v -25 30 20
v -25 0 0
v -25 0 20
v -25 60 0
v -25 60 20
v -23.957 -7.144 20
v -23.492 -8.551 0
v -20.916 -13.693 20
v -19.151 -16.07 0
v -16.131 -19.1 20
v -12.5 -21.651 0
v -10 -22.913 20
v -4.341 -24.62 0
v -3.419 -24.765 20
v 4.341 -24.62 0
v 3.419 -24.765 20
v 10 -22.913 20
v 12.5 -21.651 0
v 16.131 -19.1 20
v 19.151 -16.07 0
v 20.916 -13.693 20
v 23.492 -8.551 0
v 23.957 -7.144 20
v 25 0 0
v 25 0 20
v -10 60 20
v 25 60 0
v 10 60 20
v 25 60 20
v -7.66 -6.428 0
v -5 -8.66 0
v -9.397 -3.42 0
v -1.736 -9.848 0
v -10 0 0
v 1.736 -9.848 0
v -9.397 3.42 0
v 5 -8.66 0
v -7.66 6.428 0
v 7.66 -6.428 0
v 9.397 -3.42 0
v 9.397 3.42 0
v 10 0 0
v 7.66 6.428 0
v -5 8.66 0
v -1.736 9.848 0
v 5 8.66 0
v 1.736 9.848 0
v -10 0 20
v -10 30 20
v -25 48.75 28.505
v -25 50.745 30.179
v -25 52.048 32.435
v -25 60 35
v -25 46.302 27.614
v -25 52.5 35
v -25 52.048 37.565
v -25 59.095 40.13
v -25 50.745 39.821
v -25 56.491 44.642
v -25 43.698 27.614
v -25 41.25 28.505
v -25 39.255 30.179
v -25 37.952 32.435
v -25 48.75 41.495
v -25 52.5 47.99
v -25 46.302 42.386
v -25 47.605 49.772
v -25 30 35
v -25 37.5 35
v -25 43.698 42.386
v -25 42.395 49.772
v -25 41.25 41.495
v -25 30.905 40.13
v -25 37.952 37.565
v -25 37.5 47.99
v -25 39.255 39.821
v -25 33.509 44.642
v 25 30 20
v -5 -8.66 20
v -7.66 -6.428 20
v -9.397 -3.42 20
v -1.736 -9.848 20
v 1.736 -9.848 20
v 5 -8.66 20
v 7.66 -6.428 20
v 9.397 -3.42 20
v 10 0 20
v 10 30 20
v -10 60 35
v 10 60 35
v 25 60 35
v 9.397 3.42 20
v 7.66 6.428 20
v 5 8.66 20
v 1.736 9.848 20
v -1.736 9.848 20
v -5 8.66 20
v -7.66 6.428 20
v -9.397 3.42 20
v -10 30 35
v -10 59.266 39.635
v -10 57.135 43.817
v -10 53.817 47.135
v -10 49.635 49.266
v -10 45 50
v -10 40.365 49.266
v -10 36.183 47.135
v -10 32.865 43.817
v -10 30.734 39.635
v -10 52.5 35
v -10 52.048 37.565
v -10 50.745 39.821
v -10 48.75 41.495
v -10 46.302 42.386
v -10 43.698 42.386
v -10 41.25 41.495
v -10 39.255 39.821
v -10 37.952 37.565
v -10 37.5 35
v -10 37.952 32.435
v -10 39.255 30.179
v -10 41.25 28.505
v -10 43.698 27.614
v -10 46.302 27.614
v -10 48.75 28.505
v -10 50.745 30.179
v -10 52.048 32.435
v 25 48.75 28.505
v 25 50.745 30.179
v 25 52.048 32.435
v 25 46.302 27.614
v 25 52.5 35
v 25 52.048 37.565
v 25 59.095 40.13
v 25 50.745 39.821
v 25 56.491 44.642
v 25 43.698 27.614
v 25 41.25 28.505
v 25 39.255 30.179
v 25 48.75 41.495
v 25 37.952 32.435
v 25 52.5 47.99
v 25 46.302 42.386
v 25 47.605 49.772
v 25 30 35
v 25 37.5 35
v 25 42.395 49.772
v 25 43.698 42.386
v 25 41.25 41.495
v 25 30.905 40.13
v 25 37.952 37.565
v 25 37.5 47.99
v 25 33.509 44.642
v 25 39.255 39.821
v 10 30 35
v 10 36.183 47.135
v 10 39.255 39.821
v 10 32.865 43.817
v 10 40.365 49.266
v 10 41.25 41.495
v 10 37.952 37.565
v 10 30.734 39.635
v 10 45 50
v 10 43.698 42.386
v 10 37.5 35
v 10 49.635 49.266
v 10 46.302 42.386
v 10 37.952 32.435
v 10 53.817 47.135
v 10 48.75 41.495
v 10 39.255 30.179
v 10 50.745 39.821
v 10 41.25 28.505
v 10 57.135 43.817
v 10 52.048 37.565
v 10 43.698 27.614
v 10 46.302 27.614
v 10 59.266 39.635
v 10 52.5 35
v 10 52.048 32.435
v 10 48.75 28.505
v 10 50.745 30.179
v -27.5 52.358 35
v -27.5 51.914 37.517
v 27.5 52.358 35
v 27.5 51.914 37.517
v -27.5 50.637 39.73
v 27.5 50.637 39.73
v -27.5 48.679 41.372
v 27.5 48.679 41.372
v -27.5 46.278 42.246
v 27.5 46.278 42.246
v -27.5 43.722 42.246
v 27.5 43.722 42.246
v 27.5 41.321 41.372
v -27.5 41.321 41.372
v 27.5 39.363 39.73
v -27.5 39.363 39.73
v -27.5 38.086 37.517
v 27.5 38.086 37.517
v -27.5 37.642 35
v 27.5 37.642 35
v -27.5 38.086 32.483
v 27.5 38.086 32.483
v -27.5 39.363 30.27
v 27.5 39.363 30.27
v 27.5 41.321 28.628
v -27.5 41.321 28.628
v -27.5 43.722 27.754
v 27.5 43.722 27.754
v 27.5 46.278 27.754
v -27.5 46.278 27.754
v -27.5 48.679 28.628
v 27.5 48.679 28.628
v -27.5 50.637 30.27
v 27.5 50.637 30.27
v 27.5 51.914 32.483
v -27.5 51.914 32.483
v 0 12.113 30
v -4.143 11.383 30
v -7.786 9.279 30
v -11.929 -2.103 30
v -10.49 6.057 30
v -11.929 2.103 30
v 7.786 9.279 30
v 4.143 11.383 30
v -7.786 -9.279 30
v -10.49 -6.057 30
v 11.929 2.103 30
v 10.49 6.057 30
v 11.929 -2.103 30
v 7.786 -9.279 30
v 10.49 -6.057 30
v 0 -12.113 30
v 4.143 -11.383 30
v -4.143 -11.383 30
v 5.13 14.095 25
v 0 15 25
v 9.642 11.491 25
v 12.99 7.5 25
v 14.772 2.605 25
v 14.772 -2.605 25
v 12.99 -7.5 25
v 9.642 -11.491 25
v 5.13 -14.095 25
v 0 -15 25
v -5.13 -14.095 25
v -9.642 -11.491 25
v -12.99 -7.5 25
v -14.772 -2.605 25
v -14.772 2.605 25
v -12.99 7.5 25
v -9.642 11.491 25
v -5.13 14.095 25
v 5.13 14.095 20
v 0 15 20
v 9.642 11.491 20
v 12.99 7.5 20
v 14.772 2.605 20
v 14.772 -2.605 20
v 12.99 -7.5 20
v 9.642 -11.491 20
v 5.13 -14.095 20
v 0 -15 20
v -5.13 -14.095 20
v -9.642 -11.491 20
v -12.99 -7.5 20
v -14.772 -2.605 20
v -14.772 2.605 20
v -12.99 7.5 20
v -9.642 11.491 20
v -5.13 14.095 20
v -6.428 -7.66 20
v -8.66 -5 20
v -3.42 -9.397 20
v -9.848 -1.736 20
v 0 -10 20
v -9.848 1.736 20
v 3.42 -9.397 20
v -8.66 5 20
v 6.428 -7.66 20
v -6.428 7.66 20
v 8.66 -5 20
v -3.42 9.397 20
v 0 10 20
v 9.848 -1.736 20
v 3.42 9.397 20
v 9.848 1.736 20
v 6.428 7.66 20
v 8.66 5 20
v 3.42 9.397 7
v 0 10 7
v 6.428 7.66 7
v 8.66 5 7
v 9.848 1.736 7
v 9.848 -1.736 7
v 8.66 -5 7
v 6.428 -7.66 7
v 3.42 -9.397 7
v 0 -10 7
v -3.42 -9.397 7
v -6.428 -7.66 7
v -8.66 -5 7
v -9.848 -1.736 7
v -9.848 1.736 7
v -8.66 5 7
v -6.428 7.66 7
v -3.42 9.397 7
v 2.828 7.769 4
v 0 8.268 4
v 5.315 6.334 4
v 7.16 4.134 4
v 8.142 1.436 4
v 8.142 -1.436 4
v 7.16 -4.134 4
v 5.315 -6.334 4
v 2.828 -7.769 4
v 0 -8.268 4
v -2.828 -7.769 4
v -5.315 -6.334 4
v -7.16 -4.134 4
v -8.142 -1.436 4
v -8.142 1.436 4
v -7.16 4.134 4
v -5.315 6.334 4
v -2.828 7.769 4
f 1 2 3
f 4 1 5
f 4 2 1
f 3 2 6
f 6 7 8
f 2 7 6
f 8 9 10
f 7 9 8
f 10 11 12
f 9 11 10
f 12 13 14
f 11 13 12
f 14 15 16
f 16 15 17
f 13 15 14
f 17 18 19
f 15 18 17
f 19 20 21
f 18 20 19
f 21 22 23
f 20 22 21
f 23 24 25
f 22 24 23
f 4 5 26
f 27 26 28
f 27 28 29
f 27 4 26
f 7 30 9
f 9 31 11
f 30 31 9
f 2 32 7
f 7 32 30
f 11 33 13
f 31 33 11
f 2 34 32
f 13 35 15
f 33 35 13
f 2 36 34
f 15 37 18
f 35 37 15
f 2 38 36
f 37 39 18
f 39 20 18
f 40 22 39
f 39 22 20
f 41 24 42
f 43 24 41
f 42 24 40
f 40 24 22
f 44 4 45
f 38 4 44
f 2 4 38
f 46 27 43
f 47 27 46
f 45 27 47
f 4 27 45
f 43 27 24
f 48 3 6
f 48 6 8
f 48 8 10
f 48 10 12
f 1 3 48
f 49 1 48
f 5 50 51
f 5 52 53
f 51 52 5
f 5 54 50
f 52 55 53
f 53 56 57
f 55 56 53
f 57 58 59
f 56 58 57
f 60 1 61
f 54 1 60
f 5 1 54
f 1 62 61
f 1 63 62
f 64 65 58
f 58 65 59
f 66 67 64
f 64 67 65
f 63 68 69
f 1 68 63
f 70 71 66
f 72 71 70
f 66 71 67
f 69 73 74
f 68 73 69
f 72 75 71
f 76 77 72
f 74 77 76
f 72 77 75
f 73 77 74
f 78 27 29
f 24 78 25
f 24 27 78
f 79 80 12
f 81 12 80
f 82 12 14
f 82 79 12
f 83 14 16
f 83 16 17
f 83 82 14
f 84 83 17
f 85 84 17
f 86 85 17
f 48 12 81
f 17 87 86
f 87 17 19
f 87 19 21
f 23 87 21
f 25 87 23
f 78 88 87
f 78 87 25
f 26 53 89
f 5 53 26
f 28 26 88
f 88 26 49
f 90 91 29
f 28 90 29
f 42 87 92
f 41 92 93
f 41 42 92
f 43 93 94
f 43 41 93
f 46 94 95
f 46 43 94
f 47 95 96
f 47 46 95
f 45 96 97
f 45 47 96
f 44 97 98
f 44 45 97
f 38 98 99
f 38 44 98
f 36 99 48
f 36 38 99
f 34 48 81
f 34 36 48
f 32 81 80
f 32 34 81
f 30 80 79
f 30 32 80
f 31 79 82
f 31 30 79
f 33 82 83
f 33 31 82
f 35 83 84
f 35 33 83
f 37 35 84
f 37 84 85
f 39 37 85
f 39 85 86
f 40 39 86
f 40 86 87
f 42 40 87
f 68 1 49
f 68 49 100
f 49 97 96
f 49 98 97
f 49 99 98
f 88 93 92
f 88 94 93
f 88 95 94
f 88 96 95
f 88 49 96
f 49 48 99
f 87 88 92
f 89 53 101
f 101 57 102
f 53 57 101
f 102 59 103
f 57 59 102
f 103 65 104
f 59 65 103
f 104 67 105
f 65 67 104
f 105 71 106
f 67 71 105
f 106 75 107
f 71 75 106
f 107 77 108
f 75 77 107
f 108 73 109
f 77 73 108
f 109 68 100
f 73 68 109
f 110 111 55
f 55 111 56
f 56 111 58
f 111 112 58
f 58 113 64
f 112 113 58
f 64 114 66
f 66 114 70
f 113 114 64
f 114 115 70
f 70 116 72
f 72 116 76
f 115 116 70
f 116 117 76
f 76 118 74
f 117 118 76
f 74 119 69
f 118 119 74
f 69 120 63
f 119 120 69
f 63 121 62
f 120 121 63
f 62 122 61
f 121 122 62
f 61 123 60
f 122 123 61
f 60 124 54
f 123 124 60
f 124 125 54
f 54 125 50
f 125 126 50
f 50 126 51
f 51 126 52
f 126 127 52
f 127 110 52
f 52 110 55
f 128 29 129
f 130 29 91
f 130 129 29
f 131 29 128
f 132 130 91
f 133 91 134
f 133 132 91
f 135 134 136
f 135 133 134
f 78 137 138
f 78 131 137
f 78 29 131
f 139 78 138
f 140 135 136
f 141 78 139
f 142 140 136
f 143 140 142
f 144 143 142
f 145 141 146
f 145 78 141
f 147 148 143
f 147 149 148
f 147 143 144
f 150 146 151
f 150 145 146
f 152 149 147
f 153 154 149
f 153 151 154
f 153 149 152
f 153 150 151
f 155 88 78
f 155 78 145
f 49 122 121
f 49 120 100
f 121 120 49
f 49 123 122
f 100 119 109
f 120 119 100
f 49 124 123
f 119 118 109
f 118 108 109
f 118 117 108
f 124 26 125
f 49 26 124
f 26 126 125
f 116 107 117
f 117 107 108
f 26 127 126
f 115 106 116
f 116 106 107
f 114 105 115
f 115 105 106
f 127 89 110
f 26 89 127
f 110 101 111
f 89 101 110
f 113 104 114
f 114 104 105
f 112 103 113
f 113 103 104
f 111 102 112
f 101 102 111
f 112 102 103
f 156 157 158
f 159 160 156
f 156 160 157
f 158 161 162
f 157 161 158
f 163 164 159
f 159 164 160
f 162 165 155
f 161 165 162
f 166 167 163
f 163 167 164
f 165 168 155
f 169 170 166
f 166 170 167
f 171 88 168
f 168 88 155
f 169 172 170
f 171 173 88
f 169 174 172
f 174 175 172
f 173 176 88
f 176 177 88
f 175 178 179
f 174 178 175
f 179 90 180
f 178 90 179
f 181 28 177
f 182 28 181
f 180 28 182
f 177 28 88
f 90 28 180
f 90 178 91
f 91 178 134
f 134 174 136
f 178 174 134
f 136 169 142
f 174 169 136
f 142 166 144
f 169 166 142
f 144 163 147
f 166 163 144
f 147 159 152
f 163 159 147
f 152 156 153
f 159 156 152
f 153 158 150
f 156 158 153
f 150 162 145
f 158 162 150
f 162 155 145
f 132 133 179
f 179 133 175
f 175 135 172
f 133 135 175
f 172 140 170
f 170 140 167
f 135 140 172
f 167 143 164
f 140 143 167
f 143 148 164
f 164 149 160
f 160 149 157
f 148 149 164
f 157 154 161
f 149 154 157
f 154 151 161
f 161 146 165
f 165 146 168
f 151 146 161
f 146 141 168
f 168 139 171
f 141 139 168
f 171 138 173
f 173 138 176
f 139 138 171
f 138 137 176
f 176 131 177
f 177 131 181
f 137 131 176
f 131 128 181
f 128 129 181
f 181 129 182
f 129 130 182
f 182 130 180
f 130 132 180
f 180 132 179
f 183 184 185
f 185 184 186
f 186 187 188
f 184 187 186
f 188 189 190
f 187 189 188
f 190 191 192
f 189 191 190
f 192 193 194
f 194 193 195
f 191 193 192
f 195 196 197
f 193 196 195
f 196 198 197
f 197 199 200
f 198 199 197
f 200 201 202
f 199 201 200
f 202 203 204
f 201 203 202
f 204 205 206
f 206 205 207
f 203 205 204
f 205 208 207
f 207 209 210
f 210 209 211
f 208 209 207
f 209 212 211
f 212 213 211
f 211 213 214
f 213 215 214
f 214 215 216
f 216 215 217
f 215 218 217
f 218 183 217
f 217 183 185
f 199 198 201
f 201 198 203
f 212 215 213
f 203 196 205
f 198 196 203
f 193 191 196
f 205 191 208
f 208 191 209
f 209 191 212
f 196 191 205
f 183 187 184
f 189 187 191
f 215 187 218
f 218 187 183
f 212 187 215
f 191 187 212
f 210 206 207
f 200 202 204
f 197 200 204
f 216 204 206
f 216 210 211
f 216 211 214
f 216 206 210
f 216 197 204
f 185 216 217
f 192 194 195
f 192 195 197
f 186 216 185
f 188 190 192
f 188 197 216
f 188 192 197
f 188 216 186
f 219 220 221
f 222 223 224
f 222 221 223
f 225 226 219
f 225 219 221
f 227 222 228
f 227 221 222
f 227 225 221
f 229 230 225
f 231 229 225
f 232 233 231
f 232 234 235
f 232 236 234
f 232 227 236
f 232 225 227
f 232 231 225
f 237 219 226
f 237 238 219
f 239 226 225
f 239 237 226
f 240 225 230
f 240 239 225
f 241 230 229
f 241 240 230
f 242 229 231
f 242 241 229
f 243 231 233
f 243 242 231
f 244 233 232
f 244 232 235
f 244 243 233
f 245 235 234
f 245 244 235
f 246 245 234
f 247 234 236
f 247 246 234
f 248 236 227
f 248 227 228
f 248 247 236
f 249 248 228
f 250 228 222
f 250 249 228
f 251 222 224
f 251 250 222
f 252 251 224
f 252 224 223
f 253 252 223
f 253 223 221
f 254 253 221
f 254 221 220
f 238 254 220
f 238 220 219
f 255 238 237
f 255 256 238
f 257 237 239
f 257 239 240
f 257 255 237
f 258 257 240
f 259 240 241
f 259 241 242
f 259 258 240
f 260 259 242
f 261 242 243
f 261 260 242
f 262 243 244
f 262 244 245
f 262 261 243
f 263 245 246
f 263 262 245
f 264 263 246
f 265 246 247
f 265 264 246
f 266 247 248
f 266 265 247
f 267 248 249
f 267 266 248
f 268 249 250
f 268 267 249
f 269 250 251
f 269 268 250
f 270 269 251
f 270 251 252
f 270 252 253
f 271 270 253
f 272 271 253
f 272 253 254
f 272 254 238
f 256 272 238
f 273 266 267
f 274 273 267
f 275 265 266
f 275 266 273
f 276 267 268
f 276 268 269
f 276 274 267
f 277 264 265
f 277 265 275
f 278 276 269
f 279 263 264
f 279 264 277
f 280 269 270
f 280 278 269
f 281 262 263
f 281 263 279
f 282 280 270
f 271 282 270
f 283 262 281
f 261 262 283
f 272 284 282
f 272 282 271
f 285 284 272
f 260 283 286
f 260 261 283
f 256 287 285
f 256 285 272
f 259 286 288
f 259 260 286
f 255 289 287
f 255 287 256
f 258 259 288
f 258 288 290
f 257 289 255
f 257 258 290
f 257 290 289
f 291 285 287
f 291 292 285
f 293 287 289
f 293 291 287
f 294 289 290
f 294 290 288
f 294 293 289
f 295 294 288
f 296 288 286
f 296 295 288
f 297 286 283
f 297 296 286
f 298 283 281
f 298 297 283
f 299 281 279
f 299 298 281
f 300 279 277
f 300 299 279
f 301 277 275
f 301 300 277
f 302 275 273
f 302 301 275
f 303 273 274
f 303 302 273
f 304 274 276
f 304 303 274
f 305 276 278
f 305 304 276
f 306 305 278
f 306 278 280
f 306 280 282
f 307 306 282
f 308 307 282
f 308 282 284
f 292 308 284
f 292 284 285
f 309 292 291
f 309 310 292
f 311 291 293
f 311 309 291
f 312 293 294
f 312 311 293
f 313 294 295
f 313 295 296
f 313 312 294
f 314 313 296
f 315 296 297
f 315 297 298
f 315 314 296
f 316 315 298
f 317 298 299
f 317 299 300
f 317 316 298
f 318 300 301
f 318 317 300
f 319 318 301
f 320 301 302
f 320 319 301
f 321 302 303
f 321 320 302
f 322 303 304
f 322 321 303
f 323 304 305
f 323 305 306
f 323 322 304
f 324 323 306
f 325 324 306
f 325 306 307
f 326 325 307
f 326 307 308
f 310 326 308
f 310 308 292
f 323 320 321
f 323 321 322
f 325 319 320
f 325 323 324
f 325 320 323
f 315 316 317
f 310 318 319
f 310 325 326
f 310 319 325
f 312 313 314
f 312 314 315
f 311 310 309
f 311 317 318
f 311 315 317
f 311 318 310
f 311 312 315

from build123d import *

# Parameters (mm, degrees)
SKETCH_R             = 10
PAD_DEPTH            = 20
PAD001_DEPTH         = 25
SKETCH002_W          = 20
SKETCH002_H          = 30
POCKET_DEPTH         = 85.001
SKETCH003_R          = 7.5
POCKET001_DEPTH      = 25.001
POCKET001_DEPTH_BACK = -25.001
SKETCH004_R          = 7.358208
PAD002_DEPTH         = 27.5


with BuildPart() as lasche:
    # Sketch → Pad (new body)
    with BuildSketch(Plane.XY):
        with BuildLine():
            Line((-25, 0), (-25, 60))
            Line((-25, 60), (25, 60))
            Line((25, 60), (25, 0))
            ThreePointArc((-25, 0), (0, -25), (25, 0))
        make_face()
        Circle(SKETCH_R, mode=Mode.SUBTRACT)
    extrude(amount=PAD_DEPTH)

    # Sketch001 → Pad001 (join, symmetric)
    with BuildSketch(Plane.YZ):
        with BuildLine():
            Line((30, 20), (30, 35))
            ThreePointArc((60, 35), (45, 50), (30, 35))
            Line((60, 35), (60, 20))
            Line((60, 20), (30, 20))
        make_face()
    extrude(amount=PAD001_DEPTH, both=True)

    # Sketch002 → Pocket (cut, through all)
    with BuildSketch(Plane.XZ.offset(-60)):
        with Locations((0, 35)):
            Rectangle(SKETCH002_W, SKETCH002_H)
    extrude(amount=POCKET_DEPTH, mode=Mode.SUBTRACT)

    # Sketch003 → Pocket001 (cut, two sides)
    with BuildSketch(Plane.YZ) as pocket001_sk:
        with Locations((45, 35)):
            Circle(SKETCH003_R)
    extrude(amount=-POCKET001_DEPTH, mode=Mode.SUBTRACT)
    extrude(pocket001_sk.sketch, amount=-POCKET001_DEPTH_BACK, mode=Mode.SUBTRACT)


with BuildPart() as bolzen:
    # Sketch004 → Pad002 (new body, symmetric)
    with BuildSketch(Plane.YZ):
        with Locations((45, 35)):
            Circle(SKETCH004_R)
    extrude(amount=PAD002_DEPTH, both=True)


with BuildPart() as auflage:
    # Sketch005 → Revolution (revolve)
    with BuildSketch(Plane.YZ):
        Polygon((0, 30), (12.113249, 30), (15, 25), (15, 20), (10, 20), (10, 7), (8.267949, 4), (0, 4), align=None)
    revolve(axis=Axis((0, 0, 0), (0, 0, 1)))


solid = Compound([lasche.part, bolzen.part, auflage.part])
